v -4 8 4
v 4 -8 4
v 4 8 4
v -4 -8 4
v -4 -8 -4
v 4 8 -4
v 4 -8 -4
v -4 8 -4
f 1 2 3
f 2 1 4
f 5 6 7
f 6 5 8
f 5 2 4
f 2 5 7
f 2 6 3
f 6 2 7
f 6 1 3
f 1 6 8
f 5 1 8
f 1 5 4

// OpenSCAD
size=32; //block=32 //item=8




//for(i=[0:1:4]){	//kept as refrence for actualy block shaft positions
//rotate([0,0,90*i]){
//translate([0,size*0.75,0]){
cube([size*0.25,size*0.5,size*0.25],center=true);
//};	//translate
//};	//rotate
//};	//for
